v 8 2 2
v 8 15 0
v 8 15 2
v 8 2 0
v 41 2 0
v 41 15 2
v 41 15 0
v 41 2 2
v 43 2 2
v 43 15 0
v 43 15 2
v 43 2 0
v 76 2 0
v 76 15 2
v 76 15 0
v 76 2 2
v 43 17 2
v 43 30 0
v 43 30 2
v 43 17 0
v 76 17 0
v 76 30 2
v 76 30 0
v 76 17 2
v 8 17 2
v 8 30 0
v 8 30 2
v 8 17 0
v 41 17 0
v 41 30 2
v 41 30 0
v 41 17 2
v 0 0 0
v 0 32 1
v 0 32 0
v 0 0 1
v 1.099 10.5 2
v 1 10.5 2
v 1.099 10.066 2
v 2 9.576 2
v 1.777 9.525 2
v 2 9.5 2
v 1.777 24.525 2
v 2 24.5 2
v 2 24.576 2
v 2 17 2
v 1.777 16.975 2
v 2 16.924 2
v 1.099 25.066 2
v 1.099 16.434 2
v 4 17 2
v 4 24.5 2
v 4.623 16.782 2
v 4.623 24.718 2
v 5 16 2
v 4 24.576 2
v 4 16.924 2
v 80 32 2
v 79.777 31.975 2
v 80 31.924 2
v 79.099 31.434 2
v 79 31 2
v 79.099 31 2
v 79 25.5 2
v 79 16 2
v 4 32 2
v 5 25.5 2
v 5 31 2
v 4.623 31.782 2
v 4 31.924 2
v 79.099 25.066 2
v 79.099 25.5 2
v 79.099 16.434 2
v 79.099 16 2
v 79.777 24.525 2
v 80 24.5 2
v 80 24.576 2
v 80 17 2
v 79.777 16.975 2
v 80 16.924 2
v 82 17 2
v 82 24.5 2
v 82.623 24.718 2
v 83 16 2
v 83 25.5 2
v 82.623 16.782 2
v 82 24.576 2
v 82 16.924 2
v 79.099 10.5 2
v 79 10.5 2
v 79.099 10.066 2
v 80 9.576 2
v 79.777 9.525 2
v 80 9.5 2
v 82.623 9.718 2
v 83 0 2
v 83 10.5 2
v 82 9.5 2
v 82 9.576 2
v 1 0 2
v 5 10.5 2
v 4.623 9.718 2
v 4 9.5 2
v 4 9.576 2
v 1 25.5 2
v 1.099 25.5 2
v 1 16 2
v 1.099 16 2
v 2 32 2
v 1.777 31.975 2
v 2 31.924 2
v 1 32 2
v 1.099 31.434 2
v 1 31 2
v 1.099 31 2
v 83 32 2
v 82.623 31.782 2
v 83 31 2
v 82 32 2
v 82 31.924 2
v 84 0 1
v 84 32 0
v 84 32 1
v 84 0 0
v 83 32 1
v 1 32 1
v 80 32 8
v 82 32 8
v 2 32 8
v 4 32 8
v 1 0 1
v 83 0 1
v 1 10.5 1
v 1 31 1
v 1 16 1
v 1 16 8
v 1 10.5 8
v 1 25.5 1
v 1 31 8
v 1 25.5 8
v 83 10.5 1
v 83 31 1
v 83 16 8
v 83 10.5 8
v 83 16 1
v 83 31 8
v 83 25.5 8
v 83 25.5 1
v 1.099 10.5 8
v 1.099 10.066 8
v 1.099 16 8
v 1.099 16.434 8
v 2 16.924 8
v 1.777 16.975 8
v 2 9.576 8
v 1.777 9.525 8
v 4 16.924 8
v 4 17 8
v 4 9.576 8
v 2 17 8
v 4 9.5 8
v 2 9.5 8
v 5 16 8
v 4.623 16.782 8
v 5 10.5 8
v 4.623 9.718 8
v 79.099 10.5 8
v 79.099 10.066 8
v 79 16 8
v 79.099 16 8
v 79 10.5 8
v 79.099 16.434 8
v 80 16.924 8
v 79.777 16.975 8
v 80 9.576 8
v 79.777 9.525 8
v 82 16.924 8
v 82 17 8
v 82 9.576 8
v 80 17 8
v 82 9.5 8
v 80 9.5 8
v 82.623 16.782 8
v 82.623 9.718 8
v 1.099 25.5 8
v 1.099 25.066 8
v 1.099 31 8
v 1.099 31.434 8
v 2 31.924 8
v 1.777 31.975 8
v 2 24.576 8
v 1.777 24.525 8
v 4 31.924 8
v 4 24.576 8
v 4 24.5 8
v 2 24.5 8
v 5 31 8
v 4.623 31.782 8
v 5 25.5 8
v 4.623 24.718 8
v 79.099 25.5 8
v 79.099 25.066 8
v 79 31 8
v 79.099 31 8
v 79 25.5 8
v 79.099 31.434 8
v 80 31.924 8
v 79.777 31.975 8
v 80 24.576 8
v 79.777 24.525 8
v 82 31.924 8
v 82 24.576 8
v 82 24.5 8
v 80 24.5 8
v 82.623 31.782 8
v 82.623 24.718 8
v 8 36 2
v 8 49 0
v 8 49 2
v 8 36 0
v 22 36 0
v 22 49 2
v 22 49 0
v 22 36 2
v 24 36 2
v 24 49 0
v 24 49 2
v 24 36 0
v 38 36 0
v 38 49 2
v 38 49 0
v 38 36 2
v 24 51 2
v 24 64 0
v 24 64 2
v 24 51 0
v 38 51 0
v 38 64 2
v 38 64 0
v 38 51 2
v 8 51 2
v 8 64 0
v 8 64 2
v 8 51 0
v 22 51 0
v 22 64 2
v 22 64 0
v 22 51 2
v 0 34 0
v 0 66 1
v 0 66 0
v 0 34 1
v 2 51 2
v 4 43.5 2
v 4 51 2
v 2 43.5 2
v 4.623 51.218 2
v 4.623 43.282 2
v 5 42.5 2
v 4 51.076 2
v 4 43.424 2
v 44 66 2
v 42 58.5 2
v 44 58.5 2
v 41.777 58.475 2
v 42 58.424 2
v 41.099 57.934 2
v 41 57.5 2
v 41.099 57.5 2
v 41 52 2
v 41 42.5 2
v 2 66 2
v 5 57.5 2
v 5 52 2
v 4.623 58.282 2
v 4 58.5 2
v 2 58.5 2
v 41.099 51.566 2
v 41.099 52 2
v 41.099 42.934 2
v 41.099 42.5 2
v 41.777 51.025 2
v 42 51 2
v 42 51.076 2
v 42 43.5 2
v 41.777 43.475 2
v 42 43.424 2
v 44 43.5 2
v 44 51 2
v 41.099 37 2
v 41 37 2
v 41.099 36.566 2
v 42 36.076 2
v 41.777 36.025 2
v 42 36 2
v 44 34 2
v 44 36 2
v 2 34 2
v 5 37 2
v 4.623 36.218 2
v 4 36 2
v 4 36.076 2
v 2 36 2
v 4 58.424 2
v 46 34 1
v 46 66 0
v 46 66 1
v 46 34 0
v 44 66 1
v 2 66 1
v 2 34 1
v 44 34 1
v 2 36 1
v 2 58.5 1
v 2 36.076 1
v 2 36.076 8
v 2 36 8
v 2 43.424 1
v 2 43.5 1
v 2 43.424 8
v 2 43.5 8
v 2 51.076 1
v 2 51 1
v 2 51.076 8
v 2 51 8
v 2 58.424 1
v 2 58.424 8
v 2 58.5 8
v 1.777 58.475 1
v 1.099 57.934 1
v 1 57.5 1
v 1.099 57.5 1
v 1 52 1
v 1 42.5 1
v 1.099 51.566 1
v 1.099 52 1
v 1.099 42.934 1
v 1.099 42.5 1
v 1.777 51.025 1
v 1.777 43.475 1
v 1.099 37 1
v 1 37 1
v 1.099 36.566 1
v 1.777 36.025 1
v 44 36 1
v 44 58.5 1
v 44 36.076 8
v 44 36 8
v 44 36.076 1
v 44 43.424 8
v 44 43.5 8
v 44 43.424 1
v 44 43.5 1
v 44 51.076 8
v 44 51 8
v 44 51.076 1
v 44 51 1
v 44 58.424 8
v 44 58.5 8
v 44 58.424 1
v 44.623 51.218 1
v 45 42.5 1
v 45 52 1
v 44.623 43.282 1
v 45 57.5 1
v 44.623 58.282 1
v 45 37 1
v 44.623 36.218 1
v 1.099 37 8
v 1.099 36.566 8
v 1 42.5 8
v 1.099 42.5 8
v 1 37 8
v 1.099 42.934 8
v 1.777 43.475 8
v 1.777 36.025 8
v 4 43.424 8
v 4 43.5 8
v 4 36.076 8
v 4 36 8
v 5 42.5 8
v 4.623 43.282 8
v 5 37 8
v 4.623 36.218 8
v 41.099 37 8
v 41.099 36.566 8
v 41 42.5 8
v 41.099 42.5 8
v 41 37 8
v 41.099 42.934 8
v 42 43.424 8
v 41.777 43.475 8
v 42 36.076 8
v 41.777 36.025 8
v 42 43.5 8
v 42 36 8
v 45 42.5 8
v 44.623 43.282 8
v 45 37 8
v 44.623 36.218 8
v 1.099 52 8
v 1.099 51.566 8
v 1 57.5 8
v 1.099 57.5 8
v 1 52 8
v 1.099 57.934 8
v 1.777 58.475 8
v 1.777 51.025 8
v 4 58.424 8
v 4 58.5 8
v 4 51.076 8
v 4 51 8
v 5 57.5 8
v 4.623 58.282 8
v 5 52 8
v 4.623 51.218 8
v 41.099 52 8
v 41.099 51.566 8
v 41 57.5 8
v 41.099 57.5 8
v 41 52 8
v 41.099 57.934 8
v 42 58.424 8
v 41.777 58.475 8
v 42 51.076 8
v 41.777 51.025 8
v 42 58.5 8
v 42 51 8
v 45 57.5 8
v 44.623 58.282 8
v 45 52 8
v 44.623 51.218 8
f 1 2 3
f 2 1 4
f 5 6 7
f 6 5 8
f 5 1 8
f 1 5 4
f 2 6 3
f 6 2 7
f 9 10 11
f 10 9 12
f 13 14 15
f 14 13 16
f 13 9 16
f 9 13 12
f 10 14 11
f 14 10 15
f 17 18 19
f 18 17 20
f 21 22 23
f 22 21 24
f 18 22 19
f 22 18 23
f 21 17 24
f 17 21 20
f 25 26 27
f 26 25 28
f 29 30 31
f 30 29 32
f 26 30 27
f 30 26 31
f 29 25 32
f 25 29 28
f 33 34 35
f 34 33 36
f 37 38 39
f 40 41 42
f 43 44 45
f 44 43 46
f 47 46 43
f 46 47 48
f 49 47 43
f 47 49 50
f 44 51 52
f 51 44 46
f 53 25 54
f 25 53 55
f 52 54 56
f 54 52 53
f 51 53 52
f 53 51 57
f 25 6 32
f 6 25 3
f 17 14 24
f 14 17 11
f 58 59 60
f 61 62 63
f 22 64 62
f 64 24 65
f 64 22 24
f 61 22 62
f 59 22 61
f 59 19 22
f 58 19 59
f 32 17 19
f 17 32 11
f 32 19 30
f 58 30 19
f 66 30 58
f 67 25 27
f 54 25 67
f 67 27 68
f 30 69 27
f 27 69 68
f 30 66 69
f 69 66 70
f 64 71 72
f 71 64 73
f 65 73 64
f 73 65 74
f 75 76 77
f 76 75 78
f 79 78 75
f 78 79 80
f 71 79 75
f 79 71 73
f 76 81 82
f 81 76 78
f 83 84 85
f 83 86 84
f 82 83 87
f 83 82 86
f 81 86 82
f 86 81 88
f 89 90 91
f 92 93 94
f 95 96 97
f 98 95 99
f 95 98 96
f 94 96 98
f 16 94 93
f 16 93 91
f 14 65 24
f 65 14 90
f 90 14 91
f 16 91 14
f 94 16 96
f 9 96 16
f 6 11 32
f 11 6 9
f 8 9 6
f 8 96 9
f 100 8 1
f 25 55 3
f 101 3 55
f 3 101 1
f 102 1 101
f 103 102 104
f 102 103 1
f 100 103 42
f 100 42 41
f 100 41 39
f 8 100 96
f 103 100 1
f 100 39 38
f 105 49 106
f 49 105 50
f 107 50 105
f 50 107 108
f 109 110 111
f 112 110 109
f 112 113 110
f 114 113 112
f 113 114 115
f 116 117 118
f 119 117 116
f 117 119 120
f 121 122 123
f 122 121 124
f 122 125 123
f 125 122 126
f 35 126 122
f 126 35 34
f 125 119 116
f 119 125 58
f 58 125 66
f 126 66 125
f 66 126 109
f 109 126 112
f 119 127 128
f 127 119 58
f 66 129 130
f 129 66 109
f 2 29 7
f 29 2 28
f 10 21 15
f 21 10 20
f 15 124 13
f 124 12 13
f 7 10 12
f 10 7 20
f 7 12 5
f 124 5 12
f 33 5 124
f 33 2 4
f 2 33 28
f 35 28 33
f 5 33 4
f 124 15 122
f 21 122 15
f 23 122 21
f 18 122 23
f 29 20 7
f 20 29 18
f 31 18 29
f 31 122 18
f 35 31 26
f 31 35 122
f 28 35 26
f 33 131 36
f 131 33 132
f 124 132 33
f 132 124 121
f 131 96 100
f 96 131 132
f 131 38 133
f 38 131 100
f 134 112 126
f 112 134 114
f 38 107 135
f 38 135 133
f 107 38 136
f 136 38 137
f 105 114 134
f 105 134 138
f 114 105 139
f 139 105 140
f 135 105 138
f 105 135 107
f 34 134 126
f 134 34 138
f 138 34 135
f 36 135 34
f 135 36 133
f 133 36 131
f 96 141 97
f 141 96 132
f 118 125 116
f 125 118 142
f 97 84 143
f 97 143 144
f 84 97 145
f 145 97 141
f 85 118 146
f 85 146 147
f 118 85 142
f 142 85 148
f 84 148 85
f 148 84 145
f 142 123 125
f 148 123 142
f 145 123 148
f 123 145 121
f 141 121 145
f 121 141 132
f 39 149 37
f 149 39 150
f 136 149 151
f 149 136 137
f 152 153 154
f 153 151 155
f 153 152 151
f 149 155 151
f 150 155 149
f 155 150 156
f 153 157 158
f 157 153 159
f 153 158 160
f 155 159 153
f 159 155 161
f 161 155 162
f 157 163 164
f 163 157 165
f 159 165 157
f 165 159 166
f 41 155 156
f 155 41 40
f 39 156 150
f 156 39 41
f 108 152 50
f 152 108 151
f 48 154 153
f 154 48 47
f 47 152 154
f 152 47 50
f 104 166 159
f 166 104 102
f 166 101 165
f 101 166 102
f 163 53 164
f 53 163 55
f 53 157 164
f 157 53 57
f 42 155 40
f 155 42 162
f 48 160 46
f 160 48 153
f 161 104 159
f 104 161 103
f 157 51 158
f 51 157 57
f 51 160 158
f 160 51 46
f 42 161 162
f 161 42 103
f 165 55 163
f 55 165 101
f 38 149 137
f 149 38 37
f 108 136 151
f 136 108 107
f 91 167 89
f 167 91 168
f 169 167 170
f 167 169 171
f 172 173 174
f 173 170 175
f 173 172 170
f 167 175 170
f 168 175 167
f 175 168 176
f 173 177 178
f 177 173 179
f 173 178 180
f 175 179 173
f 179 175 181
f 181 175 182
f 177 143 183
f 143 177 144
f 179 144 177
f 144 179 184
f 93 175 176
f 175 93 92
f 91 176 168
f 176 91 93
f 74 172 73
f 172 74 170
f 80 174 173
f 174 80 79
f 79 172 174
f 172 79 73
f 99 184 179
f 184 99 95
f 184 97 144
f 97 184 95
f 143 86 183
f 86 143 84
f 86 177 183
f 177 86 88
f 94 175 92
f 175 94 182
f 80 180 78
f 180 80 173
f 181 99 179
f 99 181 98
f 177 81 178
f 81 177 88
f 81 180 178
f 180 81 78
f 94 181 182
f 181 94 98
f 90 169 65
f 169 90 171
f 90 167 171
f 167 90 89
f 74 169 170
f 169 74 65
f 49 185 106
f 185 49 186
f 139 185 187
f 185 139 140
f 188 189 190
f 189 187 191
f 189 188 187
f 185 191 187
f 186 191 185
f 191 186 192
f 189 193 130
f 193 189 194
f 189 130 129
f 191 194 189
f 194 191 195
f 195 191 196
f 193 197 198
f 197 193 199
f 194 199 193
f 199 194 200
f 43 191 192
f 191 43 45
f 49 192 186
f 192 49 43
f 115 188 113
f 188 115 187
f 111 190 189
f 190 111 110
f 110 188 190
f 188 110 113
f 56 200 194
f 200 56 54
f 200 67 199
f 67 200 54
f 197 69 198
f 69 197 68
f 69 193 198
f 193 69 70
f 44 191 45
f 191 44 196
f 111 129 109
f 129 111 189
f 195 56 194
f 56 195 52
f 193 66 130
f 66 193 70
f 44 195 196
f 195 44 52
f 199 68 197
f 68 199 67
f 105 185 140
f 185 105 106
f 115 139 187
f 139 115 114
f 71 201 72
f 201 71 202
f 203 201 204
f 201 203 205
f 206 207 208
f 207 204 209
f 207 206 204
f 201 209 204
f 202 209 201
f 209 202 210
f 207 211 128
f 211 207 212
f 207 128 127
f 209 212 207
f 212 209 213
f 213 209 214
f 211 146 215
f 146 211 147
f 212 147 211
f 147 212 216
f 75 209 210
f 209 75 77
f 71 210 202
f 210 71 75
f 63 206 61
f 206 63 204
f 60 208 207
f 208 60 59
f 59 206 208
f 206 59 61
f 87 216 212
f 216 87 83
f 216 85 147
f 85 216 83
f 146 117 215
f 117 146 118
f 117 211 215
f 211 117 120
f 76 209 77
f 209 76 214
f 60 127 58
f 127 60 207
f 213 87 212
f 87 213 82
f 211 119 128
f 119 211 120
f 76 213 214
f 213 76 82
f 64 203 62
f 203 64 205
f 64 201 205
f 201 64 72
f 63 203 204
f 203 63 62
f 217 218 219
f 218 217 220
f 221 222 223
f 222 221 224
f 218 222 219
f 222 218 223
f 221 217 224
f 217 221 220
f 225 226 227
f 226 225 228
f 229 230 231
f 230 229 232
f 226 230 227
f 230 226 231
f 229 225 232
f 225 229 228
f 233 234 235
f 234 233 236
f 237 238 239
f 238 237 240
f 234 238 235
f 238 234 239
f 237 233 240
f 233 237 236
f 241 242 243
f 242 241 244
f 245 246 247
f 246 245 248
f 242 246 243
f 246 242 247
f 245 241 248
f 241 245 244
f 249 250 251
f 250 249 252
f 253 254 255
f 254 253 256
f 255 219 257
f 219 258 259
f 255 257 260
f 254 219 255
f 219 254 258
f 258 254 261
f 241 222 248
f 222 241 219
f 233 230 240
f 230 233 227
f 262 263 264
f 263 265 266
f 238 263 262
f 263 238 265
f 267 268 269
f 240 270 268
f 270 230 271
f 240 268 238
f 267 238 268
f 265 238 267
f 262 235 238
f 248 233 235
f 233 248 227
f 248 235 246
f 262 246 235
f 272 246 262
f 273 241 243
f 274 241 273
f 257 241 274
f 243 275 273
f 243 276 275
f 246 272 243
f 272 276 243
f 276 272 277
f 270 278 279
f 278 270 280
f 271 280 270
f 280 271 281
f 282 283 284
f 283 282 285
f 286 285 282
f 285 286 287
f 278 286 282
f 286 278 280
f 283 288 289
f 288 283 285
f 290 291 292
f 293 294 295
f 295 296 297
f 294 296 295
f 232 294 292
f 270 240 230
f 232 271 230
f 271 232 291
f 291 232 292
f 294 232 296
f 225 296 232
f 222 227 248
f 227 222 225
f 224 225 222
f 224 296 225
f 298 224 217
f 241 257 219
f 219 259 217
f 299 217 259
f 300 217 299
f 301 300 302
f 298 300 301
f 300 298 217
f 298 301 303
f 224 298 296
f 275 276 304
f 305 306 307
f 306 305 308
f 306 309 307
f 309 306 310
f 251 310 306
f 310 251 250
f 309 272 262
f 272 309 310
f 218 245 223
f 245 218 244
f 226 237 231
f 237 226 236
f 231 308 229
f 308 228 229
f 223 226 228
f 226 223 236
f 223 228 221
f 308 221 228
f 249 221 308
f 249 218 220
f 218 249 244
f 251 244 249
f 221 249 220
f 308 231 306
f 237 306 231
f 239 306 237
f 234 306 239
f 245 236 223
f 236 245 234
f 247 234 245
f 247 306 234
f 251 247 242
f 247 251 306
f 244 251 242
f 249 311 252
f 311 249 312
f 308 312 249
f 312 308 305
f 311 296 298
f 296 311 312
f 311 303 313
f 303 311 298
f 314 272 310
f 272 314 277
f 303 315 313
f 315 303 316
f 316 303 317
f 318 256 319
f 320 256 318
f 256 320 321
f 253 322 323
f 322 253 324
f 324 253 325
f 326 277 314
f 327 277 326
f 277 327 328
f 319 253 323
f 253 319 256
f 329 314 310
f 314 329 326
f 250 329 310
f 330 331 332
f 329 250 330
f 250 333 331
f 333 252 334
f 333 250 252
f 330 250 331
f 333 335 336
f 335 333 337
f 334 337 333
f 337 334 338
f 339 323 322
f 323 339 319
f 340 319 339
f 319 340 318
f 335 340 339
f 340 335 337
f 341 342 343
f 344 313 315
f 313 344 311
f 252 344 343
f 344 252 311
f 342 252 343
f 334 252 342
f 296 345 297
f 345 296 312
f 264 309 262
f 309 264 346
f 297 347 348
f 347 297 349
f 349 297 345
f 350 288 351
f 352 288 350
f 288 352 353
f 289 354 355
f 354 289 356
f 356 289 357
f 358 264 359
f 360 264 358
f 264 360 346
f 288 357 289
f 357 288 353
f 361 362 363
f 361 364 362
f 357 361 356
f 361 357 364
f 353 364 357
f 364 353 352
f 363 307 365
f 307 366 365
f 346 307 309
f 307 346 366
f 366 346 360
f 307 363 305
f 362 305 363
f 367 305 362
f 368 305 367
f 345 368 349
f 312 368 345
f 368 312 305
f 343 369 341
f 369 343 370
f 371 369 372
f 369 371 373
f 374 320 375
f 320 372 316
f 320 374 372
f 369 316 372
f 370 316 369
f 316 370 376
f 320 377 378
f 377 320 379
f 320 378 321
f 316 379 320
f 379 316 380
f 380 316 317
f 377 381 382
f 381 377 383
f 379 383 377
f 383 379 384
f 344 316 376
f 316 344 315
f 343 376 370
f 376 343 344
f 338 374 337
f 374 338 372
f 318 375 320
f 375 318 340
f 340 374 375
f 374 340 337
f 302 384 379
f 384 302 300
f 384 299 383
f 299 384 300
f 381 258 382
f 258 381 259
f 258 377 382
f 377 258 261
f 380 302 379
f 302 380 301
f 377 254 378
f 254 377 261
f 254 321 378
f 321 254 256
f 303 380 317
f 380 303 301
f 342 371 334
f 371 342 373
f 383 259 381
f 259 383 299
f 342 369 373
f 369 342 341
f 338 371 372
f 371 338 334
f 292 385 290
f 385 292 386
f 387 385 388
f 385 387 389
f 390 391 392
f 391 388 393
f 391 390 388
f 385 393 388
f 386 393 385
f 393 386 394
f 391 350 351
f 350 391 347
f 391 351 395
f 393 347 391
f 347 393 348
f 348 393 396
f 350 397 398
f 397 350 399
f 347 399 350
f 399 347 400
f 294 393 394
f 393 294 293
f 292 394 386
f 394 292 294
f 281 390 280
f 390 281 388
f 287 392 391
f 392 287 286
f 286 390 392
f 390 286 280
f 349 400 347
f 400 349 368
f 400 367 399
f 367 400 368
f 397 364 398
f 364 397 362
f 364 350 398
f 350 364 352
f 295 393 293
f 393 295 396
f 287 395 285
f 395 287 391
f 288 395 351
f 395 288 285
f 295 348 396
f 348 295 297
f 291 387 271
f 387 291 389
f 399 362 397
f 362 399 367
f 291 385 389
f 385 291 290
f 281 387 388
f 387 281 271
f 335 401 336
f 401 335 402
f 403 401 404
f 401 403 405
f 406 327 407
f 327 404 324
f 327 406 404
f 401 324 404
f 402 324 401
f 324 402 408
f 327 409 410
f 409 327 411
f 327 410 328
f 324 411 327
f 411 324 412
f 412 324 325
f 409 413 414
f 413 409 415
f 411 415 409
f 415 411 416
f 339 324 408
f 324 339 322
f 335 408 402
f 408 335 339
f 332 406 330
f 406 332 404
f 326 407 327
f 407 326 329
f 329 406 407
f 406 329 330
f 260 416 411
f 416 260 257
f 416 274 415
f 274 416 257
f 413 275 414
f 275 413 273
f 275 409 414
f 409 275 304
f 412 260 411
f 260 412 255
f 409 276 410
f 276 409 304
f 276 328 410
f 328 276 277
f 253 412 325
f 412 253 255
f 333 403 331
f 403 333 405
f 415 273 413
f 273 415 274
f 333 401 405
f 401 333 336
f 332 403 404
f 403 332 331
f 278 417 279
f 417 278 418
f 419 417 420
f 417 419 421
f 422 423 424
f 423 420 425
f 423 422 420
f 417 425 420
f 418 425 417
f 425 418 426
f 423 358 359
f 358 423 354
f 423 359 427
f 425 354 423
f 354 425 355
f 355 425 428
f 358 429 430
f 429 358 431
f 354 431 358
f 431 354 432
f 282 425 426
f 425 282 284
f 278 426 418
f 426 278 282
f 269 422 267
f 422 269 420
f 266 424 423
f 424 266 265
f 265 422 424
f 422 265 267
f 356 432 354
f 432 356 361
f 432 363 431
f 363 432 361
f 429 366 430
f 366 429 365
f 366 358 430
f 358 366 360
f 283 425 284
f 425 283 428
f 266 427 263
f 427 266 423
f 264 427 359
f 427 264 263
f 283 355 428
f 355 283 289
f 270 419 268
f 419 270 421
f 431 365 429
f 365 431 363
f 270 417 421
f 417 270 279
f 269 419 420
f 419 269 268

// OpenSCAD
// file: utils.scad
use <MCAD/boxes.scad>

BIG = [1024, 1024, 1024];

module mark(name, height, size = 2) {
	linear_extrude(height, center = false)	text(name, size = size);
}
module hole(w, h) {
	translate([w / 2, h / 2, 0])		roundedBox(size=[w, h, 1024], radius = w / 4, sidesonly = true);
}
module ellipsis(w, h) {
	translate([w / 2, h / 2, 0])
		resize([w, h, 1024])
			cylinder(1024, 1024, 1024);
}
module cornerHole(base, m, in, out, height) {
	delta = (out - in) / 2;
		translate([m,					m,					0])	ellipsis(in, in);
		translate([base[0] - m,	m,					0])	ellipsis(in, in);
		translate([base[0] - m,	base[1] - m,		0])	ellipsis(in, in);
		translate([m,					base[1] - m,		0])	ellipsis(in, in);

		translate([m - delta,					m - delta,					height])	ellipsis(out, out);
		translate([base[0] - m  - delta,	m - delta,					height])	ellipsis(out, out);
		translate([base[0] - m  - delta,	base[1] - m - delta,	height])	ellipsis(out, out);
		translate([m - delta,					base[1] - m - delta,	height])	ellipsis(out, out);
}
module lineBox(outter = [100, 100, 100], t = 2) {
	size = outter - [t*2, t*2, t*2];
	center = false;

	translate([t, t, t])	{
		
	// x
	translate([0, 0, 0])						rotate([0, 90, 0])		cylinder(h = size[0], r = t, center = center);
	translate([0, size[1], 0])			rotate([0, 90, 0])		cylinder(h = size[0], r = t, center = center);
	translate([0, size[1], size[2]])	rotate([0, 90, 0])		cylinder(h = size[0], r = t, center = center);
	translate([0, 0, size[2]])			rotate([0, 90, 0])		cylinder(h = size[0], r = t, center = center);

	// y
	translate([0, 0, 0])						rotate([270, 0, 0])		cylinder(h = size[1], r = t, center = center);
	translate([size[0], 0, 0])			rotate([270, 0, 0])		cylinder(h = size[1], r = t, center = center);
	translate([size[0], 0, size[2]])	rotate([270, 0, 0])		cylinder(h = size[1], r = t, center = center);
	translate([0, 0, size[2]])			rotate([270, 0, 0])		cylinder(h = size[1], r = t, center = center);

	// z
	translate([0, 0, 0])						rotate([0, 0, 0])		cylinder(h = size[2], r = t, center = center);
	translate([size[0], 0, 0])			rotate([0, 0, 0])		cylinder(h = size[2], r = t, center = center);
	translate([size[0], size[1], 0])	rotate([0, 0, 0])		cylinder(h = size[2], r = t, center = center);
	translate([0, size[1], 0])	rotate([0, 0, 0])				cylinder(h = size[2], r = t, center = center);
	}
}
module hide(show = 0) {
	if (show > 0) children();
	else scale([0, 0, 0])	children();
}

module t() {
	c = [0.5, 0.5, 0.5, 0.5];
	d = [0.5, 0.5, 0.0, 0.5];
	
	color(c)	difference() {
		cube([4, 16, 2]);
		translate([2, -2, -1])	cube([4, 4, 4]);
	}
	color(d)	translate([8, 0, 0])	cube([16, 4, 2]);
}

module test(b) {
	
	c = [0.5, 0.5, 0.5, 0.5];
	d = [0.5, 0.5, 0.0, 0.5];
	
	color(c)	difference() {
		cube(b);
		translate([-BIG[0]+b[1]/2, b[1]/2, -BIG[2] / 2])	cube(BIG);
		//translate([b[0]-b[1]/2, b[1]/2, -1])	cube([b[1], b[1], b[2]*2]);
	}
}
		//translate([-BIG[0]+16, 16, 0])	cube(BIG);
test([16, 4, 2]);
//cube(BIG);
// file: landscape.scad
use <MCAD/boxes.scad>
use <utils.scad>

PALETTE = [
	[0.3, 0.1, 0.0, 0.5],	//	갈색, 칼손잡이
	[0.5, 0.5, 0.5, 0.5],	//	회색, 칼날
	[0.9, 0.9, 0.9, 1.0],	//	흰색, 상판
	[0.0, 0.0, 0.9, 0.5],	//	파랑
	[0.0, 0.0, 0.0, 0.0]	//	검정 투명, 호환성 예약
];

// 리트랙션을 줄일려면, 각진선이 유리하다
module hole(w, h) {
	translate([w / 2, h / 2, 0])
		//roundedBox(size=[w, h, 1024], radius = w / 4, sidesonly = true);
		cube([w, h, 1024], center = true);
}

// [가로, 세로, 높이], 홈너비
// 리트랙션을 줄일려면, 각진선이 유리하다
module hilt(base, r) {
	translate([base[0] / 2, base[1] / 2, base[2] / 2])
		//roundedBox(size=base, radius = r, sidesonly = true);
		cube([base[0], base[1], base[2]], center = true);
}

function landscapeSize()  = [160, 88, 4];
module landscape() {
	base =  landscapeSize();	//	상판
	t = base[2];		//	thick 껍질 두께
	m = 16;	//	margin 여유
	HILT = [16, 32, 16];	//	손잡이

	difference() {
		union() {
			//	상판
			color(c=PALETTE[2])		translate([base[0] / 2, base[1] / 2, t / 2])		roundedBox(size=base, radius = m / 4, sidesonly = true);
			
			//	서명
			//color(c=PALETTE[1])		translate([base[0] - m / 2 - 2, m / 4, t])		mark("andold", 0.2, 1);

			//	손잡이
			translate([0, 0, 0])		color(c=PALETTE[0])		translate([m - HILT[0]/ 2 + 4 / 2, m - 4, 0])		hilt(HILT, 4);
		}
		
		translate([0, 0, 0]) {
			//	식도
			translate([m, m, 0])			hole(4, 60);
			translate([m + 16, m, 0])	hole(3, 60);

			// 과도
			translate([m + 32, m])		hole(3, 60);
			translate([m + 48, m])		hole(3, 60);

			// 빵칼
			translate([m + 64, m])	hole(3, 60);

			// 가위
			scissor = [16, 40];
			translate([base[0] - m - 5 - 48, base[1] / 2 - scissor[1] / 2, -1])		ellipsis(16, 40);
			translate([base[0] - m - 5 - 24, base[1] / 2 - scissor[1] / 2, -1])		ellipsis(16, 40);
			
			translate([base[0] - m - 5, m, 0])	hole(5, 60);
			// 여유
		}

		// 모서리 구멍
		//cornerHole(base, m / 2, 2, 4, 2);
	}
}
landscape();
// main file
use <MCAD/boxes.scad>
use <landscape.scad>
use <utils.scad>

ZERO = [0, 0, 0];
HALF = [1/2, 1/2, 1/2];
ONE = [1, 1, 1];

// 주요 상수
THICK = 4;
HEIGHT = 240;
HEIGHT_TOP = 64;
OVERLAP = 32;

function bodyTopSize()  = [landscapeSize()[0] + THICK, landscapeSize()[1] + THICK, HEIGHT_TOP];
function	bodyBottomSize() = [
	bodyTopSize()[0] + THICK,
	bodyTopSize()[1] + THICK,
	HEIGHT - bodyTopSize()[2] + OVERLAP];

// 몸통
module quartet(x, y, z, cx, cy) {
	translate([cx,		cy,		-1])	children();
	translate([x - cx,	cy,		-1])	children();
	translate([cx,		y - cy,	-1])	children();
	translate([x - cx,	y - cy,	-1])	children();
}
module boardHold(x, y, z, dx = 16, dy = 0) {
	w = (x - dx * 2 - z * 3) / 2;
	h = (y - dy * 2 - z * 3) / 2;
	translate([dx + z,					dy + z,		-1])	cube([w, h, z * 4], center = false);
	translate([x / 2 + z / 2,		dy + z,		-1])	cube([w, h, z * 4], center = false);
	translate([x / 2 + z / 2,		y / 2 + z / 2,		-1])	cube([w, h, z * 4], center = false);
	translate([dx + z,		y / 2 + z / 2,		-1])	cube([w, h, z * 4], center = false);
}
module board(x, y, z, even = false, dz = 4, count = 2) {
	union() {
		difference() {
			union() {
				cube([x, y, z]);
			}
			
			// 면 조립부분 홈파기
			deep = even ? z : z / 2;
			translate([-1024 + deep, -1, z / 2])	cube(1024);
			translate([x - deep, -1, z / 2])	cube(1024);
			
			// 규칙적으로 구멍뚫기. 리트랙션을 줄이기 위해서 구멍은 없앤다. 넣더라도 원형대신 네모형태로 넣겠다
			/*
			for (cy=[z * 3:z * 3:(y - z * 3) / 2]) {
				for (cx=[z * 4:z * 3:(x - z * 3) / 2]) {
					//quartet(x, y, z, cx, cy)	cylinder(h=z*3, r=z*1.25, center=true);
					//quartet(x, y, z, cx, cy)	cube([z * 2, z * 2, z * 4], center = true);
				}
			}
			*/
			boardHold(x, y, z, 12);
		}

		// 조립 가이드
		length = (y - dz) / count / 2;
		for (cy = [(even ? dz : dz + length):length * 2:y - length]) {
			translate([z / 2 * 3,			cy + length / 2,	z * 2])	roundedBox(size=[z * 2, length, z * 4], radius = z / 2, sidesonly = true);
			translate([x - z / 2 * 3,	cy + length / 2,	z * 2])		roundedBox(size=[z * 2, length, z * 4], radius = z / 2, sidesonly = true);
		}
	}
}
//boardTopSide();
// 조립시 바깥쪽
module bodyTopFront() {
	base = bodyTopSize();
	board(base[0] + THICK, base[2], THICK, false);
}
//bodyTopFront();

// 조립시 안쪽
module bodyTopSide() {
	base = bodyTopSize();
	board(base[1], base[2], THICK, true);
}
//bodyTopSide();

module bodyBottomFront() {
	base = bodyTopSize();
	board(base[0] + THICK * 3, HEIGHT - base[2] + OVERLAP, THICK, false, OVERLAP);
}
//bodyBottomFront();
module compareFront() {
	bodyBottomFront();
	translate([THICK, HEIGHT - bodyTopSize()[2] + OVERLAP + 1, 0])	boardTopFront();
}
//compareFront();

module bodyBottomSide() {
	base = bodyTopSize();
	board(base[1] + THICK * 2,  HEIGHT - base[2] + OVERLAP, THICK, true, OVERLAP);
}
//bodyBottomSide();

module compareSide() {
	bodyBottomSide();
	translate([THICK, HEIGHT - bodyTopSize()[2] + OVERLAP + 1, 0])	boardTopSide();
}
//compareSide();

// 크기 제한으로 상하단으로 분리한다.
module bodyTop() {
	bodyTopFront();
	translate([0, bodyTopSize()[2] + 4, 0])	bodyTopSide();
}

//bodyTop(0);

module assempleBodyBottom(help = 8) {
	base = bodyBottomSize();
	color("red", 1.0) {
		translate([0, 0, base[2]])	rotate([-90, 0, 0])	bodyBottomFront();
		translate([base[0] + THICK * 2, base[1] + THICK * 2 + help * 2, 0])	rotate([0, 0, 180])	translate([0, 0, base[2]])	rotate([-90, 0, 0])	bodyBottomFront();
	}
	color("blue", 1.0) {
		translate([base[0] + THICK * 2, THICK / 2 + help, base[2]])	rotate([-90, 0, 90])	bodyBottomSide();
		translate([base[0] + THICK * 2, base[1] + THICK * 2 + help, 0])	rotate([0, 0, 180])	translate([base[0] + THICK * 2, THICK / 2, base[2]])	rotate([-90, 0, 90])	bodyBottomSide();
	}
}
//assempleBodyBottom(0);
module bodyBottom() {
	bodyBottomFront();
	translate([0, HEIGHT - bodyTopSize()[2] + OVERLAP + 1, 0])	bodyBottomSide();
}

module assempleBodyTop(help = 8) {
	base = bodyTopSize();
	color("red", 1.0) {
		translate([0, 0, base[2]])	rotate([-90, 0, 0])	bodyTopFront();
		translate([base[0] + THICK, base[1] + THICK + help + help, 0])	rotate([0, 0, 180])	translate([0, 0, base[2]])	rotate([-90, 0, 0])	bodyTopFront();
	}
	color("blue", 1.0) {
		translate([base[0] + THICK, THICK / 2 + help, base[2]])		rotate([-90, 0, 90])		bodyTopSide();
		translate([base[0] + THICK, base[1] + THICK + help, 0])	rotate([0, 0, 180])	translate([base[0] + THICK, THICK / 2, base[2]])		rotate([-90, 0, 90])		bodyTopSide();
	}
}
//assempleBodyTop(16);
module assempleBody(help = 8) {
	base = bodyTopSize();
	assempleBodyBottom(help);
	translate([THICK, THICK, HEIGHT])	assempleBodyTop(help);
	translate([THICK * 2, THICK* 2, HEIGHT + HEIGHT_TOP + 8])	landscape();
}
//assempleBody(0);

scale(HALF)	bodyTop();
//bodyBottomFront();
//bodyBottomSide();
//halfBodyTop();
//assempleBody();
